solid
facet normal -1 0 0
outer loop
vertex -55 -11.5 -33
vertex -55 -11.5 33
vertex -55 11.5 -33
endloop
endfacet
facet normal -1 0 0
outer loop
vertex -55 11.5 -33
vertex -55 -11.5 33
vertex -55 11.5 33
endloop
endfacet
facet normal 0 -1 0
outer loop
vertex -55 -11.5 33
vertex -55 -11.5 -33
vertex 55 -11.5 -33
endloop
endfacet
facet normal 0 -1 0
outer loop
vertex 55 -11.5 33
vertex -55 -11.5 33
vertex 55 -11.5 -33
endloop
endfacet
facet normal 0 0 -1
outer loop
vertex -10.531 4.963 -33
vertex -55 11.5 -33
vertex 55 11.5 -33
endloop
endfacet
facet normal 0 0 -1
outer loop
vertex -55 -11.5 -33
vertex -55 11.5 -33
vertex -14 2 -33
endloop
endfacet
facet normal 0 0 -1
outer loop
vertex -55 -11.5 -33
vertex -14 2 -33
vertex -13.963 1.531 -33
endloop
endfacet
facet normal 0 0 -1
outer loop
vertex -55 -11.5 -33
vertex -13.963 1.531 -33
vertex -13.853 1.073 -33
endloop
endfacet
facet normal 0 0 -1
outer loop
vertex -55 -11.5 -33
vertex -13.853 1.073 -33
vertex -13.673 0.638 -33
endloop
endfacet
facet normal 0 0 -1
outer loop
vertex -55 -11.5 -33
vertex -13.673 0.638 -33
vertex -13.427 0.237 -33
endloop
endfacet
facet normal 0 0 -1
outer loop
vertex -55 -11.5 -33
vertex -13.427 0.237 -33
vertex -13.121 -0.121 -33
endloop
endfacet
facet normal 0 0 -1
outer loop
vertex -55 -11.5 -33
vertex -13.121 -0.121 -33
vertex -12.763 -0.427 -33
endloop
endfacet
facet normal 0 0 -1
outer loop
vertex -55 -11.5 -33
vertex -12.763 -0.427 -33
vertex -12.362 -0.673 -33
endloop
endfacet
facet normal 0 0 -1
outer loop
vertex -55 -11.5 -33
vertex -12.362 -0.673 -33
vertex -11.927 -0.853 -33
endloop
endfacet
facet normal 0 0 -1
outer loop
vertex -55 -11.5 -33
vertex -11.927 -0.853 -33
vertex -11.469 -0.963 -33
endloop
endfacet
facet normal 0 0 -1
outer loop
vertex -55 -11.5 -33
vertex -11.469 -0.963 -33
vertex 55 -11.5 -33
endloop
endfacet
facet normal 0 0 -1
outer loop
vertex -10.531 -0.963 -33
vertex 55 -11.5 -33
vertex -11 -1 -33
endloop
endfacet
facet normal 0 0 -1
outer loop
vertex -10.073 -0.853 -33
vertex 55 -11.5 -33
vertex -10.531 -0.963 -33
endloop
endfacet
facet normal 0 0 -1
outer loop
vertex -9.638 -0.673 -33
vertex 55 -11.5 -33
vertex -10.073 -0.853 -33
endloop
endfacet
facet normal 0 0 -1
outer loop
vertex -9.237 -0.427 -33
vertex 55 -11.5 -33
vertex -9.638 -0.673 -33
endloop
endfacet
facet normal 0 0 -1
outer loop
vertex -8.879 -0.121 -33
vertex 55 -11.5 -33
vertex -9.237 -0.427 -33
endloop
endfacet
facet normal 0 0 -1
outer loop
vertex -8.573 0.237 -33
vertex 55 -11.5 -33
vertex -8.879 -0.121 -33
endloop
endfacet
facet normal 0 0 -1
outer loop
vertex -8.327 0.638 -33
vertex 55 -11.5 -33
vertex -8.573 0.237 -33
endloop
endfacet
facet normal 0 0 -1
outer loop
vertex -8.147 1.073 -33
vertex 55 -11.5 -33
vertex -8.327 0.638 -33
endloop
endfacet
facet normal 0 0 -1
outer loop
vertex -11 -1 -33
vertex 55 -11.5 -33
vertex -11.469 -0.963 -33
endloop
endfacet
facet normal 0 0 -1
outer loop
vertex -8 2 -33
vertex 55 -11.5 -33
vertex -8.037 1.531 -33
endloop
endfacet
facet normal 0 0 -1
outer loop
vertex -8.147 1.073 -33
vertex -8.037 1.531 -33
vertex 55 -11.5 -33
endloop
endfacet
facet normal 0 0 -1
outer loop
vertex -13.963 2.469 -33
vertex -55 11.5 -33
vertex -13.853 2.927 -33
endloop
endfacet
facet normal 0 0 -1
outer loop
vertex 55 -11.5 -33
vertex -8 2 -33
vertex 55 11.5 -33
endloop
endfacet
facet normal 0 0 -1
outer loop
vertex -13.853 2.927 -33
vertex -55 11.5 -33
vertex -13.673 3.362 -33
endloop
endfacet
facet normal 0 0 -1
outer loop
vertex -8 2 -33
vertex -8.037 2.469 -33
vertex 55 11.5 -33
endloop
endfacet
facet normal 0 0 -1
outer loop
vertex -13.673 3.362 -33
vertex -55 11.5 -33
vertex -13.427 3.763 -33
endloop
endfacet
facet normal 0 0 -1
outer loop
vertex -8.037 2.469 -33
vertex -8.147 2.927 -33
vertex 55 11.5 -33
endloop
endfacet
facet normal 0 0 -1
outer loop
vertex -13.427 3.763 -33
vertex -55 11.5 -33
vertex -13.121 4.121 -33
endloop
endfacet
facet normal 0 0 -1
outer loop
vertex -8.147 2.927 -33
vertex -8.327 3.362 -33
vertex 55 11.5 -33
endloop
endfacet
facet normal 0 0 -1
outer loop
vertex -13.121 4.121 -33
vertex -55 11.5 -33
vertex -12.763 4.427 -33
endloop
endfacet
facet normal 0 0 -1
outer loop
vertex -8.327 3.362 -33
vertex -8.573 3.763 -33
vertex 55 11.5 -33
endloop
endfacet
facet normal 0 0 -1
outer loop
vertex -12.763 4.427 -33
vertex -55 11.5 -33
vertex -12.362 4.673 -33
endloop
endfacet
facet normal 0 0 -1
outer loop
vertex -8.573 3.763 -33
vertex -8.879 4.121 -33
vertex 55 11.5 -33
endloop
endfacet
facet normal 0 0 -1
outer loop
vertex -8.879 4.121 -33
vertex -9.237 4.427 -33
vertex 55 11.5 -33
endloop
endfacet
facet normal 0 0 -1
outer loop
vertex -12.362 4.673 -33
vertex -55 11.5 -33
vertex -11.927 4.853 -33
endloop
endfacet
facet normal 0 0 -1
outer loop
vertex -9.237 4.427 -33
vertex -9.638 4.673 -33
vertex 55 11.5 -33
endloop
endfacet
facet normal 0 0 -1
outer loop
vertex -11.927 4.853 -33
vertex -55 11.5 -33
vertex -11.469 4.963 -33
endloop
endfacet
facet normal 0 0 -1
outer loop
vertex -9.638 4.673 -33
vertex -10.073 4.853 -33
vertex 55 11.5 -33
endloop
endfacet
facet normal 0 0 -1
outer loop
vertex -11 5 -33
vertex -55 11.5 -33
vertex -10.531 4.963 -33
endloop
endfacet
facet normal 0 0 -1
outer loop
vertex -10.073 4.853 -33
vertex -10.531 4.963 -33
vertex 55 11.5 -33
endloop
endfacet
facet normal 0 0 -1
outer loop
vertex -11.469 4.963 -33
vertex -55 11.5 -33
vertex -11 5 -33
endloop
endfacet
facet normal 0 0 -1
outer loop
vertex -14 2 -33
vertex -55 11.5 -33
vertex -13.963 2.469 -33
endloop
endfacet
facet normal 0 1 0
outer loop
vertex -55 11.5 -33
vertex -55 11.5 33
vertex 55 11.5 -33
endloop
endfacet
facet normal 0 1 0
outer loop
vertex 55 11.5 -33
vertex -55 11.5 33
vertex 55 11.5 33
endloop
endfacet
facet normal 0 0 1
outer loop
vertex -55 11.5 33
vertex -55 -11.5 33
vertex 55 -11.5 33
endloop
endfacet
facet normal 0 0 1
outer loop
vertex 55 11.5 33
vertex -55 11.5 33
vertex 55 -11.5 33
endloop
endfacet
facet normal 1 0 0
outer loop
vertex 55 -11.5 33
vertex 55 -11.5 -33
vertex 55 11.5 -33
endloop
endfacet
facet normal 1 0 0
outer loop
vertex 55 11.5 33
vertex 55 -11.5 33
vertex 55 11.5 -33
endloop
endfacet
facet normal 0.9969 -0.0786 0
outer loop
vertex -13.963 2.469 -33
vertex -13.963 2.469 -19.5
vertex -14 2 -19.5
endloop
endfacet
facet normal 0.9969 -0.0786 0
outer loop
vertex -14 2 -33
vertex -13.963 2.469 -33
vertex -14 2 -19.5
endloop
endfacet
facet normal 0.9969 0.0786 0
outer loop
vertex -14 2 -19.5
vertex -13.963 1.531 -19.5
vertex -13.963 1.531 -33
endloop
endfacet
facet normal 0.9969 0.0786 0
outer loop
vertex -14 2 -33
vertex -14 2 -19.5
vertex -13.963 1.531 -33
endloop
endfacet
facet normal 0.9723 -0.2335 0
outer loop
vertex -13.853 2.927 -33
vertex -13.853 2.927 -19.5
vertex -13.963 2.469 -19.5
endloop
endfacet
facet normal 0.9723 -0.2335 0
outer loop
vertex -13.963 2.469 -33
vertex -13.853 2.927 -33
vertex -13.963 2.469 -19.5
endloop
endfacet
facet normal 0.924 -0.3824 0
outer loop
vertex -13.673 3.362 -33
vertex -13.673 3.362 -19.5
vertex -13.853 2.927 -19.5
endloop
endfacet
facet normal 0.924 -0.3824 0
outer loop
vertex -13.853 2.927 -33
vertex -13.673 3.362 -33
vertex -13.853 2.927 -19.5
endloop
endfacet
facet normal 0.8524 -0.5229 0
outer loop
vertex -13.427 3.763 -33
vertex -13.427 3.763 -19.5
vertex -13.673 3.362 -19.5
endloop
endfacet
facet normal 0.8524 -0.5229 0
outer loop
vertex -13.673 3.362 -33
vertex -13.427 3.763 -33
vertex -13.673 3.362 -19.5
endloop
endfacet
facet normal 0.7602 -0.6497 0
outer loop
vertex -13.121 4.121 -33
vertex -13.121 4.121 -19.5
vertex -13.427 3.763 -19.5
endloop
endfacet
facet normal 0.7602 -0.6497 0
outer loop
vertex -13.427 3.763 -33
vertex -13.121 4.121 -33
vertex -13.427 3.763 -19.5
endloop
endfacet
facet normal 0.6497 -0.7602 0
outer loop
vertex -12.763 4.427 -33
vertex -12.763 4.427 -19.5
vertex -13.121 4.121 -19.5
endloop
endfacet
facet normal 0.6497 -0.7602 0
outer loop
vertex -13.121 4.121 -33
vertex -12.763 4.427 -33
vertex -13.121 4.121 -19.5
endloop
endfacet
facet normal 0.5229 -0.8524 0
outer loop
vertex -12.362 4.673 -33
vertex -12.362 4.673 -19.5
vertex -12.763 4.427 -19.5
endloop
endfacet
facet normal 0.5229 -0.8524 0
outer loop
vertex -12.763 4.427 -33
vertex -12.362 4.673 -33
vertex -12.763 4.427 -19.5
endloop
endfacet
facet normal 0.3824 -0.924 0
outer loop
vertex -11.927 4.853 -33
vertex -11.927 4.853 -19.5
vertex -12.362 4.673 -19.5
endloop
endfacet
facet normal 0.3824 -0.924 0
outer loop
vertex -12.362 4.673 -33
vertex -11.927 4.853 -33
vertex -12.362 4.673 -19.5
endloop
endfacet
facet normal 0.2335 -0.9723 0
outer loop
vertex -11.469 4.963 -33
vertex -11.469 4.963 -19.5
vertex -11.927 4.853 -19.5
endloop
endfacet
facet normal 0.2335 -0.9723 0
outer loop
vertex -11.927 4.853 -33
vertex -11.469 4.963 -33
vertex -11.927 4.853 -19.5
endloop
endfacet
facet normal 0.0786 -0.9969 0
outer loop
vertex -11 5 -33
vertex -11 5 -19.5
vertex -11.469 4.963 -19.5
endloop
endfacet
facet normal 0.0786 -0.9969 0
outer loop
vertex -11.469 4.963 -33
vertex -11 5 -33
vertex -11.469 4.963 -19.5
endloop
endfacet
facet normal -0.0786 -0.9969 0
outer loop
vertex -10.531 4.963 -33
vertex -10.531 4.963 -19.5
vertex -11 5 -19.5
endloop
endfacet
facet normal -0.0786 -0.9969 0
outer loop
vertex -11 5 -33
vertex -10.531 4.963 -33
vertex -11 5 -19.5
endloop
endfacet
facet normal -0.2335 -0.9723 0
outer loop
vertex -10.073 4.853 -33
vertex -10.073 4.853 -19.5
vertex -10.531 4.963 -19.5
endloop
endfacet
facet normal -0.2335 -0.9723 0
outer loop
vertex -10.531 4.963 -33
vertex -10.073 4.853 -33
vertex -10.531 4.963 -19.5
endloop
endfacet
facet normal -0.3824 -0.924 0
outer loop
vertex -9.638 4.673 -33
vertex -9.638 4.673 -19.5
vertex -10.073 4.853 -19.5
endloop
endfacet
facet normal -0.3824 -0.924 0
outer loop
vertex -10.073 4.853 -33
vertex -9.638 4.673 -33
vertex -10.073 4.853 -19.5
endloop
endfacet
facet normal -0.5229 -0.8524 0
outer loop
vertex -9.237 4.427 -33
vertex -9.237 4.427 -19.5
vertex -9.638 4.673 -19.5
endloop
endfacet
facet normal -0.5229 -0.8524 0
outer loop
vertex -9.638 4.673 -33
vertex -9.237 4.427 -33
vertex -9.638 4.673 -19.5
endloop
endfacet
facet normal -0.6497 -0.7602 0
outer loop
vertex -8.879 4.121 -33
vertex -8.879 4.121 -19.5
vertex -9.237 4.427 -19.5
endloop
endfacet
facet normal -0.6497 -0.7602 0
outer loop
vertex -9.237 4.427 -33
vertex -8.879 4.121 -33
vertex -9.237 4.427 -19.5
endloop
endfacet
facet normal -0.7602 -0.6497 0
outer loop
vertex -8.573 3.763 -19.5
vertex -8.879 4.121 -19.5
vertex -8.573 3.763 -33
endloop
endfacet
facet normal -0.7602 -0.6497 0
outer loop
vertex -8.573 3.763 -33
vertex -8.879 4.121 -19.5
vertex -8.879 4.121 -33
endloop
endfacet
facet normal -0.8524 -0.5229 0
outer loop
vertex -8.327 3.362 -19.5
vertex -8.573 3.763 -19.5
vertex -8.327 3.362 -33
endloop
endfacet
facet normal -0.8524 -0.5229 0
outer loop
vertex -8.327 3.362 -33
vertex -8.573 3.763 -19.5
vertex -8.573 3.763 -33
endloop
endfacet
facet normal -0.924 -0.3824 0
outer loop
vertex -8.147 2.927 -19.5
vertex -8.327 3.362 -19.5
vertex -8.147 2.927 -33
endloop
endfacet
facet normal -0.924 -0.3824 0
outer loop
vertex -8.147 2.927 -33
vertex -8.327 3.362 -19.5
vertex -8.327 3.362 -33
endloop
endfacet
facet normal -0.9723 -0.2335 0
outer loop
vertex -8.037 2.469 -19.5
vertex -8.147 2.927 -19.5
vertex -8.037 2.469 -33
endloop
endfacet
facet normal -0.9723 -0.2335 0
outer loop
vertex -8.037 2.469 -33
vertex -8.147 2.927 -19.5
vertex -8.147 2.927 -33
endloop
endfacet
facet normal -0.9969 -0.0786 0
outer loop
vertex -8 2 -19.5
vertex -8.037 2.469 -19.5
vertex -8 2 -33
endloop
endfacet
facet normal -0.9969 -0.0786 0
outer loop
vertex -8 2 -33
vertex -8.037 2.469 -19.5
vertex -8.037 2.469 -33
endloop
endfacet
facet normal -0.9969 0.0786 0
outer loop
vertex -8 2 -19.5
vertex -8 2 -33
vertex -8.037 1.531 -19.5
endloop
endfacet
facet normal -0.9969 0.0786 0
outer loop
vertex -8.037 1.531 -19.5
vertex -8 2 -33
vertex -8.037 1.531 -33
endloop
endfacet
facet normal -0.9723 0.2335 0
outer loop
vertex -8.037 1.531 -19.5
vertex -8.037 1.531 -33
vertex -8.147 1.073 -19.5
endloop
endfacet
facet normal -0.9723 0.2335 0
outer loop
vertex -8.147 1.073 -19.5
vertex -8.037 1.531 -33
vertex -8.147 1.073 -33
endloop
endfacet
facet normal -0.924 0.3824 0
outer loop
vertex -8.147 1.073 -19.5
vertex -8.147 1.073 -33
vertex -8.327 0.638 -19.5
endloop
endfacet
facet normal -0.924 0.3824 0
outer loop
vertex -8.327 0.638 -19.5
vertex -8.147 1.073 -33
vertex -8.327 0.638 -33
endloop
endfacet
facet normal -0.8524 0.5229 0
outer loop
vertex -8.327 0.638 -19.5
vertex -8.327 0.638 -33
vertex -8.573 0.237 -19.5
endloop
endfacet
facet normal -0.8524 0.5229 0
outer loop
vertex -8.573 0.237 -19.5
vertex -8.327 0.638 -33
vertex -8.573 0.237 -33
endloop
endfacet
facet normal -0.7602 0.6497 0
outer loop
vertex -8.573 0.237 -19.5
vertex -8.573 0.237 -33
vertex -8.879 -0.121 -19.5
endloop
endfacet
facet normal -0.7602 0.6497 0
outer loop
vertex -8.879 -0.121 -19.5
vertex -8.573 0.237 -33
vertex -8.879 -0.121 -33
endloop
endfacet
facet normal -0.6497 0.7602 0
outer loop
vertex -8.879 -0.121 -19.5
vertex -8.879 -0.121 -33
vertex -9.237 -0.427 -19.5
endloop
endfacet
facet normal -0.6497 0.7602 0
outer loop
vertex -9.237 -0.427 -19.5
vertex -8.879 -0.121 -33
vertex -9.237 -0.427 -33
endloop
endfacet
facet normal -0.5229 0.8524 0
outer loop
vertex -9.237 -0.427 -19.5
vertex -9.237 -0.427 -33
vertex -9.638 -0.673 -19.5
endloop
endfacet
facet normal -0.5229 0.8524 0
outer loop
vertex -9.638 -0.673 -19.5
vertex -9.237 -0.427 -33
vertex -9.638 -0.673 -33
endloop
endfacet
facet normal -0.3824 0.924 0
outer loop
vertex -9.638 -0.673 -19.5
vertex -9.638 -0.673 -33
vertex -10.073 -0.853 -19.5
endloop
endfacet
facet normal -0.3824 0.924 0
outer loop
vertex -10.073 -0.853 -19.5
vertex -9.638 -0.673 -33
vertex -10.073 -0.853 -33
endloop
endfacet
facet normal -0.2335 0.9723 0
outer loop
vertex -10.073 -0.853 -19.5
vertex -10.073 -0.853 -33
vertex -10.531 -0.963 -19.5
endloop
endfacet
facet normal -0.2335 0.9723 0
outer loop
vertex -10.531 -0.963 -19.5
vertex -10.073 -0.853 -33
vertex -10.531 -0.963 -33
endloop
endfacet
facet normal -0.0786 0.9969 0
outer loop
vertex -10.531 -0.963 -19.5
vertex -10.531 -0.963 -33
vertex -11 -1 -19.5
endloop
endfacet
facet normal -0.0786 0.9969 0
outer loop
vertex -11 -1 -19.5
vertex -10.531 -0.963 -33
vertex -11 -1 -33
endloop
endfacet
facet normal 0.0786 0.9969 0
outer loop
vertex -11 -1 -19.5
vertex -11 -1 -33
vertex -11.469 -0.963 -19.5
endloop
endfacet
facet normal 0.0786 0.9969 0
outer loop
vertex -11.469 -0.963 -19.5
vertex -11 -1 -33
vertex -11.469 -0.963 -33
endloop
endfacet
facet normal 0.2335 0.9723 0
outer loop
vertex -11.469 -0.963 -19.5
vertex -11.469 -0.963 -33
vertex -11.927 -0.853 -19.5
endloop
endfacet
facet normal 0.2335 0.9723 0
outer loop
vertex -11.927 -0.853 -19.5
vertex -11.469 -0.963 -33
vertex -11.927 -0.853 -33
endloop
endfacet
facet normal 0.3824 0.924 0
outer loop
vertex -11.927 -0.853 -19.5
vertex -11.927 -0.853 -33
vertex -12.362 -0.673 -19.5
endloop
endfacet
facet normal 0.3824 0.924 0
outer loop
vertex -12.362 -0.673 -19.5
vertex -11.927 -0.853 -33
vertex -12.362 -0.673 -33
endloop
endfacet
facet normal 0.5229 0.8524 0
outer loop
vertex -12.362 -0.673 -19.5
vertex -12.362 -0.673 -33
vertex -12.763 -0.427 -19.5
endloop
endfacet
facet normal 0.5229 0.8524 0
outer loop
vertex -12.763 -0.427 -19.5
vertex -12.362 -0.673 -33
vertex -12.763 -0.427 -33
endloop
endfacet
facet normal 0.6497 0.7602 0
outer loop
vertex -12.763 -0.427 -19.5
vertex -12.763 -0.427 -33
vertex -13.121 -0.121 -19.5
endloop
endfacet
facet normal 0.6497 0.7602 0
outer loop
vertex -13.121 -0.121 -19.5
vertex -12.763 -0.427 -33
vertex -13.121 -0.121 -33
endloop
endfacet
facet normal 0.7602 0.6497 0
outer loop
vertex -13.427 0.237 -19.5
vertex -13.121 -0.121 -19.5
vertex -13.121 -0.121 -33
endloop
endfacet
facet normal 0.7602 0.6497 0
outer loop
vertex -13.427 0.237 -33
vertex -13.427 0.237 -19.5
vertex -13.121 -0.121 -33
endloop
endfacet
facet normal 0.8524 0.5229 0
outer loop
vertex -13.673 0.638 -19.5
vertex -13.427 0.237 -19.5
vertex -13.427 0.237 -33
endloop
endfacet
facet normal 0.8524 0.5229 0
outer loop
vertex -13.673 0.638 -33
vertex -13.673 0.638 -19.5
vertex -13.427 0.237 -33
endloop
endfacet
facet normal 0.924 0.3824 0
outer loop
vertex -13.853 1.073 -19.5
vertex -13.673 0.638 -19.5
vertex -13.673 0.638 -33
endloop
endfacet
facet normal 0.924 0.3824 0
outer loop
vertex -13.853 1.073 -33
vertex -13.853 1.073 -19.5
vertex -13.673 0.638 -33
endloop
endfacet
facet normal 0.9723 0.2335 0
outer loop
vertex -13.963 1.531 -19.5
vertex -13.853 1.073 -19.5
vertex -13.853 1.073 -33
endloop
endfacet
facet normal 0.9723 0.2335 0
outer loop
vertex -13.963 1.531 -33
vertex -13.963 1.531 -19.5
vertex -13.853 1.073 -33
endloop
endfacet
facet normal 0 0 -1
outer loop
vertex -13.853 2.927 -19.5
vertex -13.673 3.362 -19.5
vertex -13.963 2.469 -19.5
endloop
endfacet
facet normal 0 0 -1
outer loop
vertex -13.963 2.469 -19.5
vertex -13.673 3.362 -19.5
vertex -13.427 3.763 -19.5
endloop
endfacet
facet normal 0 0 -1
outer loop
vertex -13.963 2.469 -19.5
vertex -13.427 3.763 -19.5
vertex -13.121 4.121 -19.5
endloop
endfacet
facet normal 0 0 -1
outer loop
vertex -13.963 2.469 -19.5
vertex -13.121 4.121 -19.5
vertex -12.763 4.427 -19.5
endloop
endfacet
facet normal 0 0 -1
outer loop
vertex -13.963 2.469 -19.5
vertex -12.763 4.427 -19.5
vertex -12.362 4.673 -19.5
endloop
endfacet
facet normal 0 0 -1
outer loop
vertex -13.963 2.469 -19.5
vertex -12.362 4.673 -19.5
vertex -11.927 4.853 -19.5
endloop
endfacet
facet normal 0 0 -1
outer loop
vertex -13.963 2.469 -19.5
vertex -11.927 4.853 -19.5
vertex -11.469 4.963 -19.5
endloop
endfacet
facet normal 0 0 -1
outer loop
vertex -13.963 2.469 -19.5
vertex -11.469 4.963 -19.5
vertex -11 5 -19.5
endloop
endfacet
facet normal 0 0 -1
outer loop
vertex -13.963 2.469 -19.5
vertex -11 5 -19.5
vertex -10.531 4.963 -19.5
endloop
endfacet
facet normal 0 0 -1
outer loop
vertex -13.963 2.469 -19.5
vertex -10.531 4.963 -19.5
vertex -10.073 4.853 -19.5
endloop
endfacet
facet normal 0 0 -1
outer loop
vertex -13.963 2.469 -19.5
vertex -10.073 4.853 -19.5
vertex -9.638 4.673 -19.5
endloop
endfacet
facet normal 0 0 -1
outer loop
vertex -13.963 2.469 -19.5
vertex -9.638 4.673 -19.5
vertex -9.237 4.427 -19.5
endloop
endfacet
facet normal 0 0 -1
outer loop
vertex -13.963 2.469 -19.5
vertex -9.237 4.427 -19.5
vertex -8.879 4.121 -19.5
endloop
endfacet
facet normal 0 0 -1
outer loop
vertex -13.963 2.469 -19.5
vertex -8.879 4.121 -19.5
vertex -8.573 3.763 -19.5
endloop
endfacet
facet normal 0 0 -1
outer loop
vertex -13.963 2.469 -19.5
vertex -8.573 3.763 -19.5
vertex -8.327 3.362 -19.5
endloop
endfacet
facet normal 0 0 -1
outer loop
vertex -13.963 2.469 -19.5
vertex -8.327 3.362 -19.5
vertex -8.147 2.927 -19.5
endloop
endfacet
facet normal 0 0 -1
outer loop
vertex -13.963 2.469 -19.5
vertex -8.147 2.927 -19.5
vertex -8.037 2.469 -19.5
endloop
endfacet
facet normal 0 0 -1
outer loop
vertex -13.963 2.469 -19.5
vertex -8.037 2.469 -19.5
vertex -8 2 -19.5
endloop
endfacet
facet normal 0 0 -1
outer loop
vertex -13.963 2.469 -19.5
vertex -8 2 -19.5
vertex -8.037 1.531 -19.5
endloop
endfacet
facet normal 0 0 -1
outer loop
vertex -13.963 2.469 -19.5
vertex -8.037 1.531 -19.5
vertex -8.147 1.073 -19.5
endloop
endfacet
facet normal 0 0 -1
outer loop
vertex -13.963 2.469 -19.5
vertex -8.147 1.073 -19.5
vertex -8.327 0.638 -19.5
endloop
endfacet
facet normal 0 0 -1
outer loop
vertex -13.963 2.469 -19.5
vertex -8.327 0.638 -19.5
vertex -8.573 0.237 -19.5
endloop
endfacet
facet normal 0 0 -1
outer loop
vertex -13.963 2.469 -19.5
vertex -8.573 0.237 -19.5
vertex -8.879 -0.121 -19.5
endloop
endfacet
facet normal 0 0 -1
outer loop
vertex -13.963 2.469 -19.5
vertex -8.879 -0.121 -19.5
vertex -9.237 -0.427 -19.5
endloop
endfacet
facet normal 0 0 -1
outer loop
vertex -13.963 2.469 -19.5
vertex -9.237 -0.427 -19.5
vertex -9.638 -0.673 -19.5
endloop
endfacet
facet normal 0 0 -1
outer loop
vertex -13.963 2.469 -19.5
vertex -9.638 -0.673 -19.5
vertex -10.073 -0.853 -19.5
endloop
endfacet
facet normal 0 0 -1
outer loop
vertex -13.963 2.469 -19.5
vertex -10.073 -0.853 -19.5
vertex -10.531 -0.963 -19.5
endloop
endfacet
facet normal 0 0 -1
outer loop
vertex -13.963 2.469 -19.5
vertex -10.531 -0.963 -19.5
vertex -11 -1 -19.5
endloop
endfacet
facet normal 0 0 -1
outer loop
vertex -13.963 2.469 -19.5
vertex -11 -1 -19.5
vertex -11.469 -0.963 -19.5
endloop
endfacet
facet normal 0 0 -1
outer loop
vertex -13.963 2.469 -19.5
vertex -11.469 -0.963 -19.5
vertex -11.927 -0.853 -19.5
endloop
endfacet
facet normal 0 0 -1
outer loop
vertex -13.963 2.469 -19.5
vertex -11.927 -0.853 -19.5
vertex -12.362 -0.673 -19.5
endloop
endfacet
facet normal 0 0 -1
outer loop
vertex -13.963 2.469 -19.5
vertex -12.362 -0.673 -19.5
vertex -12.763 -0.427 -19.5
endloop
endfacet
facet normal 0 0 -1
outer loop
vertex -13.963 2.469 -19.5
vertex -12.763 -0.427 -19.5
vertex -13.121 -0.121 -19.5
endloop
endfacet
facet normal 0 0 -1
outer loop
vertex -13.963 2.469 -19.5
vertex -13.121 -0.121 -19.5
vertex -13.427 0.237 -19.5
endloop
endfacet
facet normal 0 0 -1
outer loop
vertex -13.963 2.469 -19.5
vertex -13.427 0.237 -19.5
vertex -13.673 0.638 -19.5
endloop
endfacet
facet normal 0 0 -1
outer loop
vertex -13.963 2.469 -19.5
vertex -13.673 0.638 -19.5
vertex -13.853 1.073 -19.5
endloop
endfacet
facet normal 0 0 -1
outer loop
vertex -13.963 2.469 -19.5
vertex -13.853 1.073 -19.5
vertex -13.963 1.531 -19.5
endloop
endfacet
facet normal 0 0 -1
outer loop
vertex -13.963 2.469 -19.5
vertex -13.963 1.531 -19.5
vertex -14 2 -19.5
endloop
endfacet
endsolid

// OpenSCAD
camWidth=110;
camHeight=66;
camDepth=23;
screwOffset=44;

$fn=40;
difference() {
	//minkowski() {
		cube([camWidth, camDepth, camHeight], true);
		/*cylinder(r=2,h=1);
		rotate(90,[0,1,0])
		cylinder(r=2,h=1);
		rotate(90,[1,0,0])
		cylinder(r=2,h=1);
	}*/
	translate([-camWidth/2+screwOffset, 2, -27])
	#cylinder(r=3, h=15, center=true);
}
